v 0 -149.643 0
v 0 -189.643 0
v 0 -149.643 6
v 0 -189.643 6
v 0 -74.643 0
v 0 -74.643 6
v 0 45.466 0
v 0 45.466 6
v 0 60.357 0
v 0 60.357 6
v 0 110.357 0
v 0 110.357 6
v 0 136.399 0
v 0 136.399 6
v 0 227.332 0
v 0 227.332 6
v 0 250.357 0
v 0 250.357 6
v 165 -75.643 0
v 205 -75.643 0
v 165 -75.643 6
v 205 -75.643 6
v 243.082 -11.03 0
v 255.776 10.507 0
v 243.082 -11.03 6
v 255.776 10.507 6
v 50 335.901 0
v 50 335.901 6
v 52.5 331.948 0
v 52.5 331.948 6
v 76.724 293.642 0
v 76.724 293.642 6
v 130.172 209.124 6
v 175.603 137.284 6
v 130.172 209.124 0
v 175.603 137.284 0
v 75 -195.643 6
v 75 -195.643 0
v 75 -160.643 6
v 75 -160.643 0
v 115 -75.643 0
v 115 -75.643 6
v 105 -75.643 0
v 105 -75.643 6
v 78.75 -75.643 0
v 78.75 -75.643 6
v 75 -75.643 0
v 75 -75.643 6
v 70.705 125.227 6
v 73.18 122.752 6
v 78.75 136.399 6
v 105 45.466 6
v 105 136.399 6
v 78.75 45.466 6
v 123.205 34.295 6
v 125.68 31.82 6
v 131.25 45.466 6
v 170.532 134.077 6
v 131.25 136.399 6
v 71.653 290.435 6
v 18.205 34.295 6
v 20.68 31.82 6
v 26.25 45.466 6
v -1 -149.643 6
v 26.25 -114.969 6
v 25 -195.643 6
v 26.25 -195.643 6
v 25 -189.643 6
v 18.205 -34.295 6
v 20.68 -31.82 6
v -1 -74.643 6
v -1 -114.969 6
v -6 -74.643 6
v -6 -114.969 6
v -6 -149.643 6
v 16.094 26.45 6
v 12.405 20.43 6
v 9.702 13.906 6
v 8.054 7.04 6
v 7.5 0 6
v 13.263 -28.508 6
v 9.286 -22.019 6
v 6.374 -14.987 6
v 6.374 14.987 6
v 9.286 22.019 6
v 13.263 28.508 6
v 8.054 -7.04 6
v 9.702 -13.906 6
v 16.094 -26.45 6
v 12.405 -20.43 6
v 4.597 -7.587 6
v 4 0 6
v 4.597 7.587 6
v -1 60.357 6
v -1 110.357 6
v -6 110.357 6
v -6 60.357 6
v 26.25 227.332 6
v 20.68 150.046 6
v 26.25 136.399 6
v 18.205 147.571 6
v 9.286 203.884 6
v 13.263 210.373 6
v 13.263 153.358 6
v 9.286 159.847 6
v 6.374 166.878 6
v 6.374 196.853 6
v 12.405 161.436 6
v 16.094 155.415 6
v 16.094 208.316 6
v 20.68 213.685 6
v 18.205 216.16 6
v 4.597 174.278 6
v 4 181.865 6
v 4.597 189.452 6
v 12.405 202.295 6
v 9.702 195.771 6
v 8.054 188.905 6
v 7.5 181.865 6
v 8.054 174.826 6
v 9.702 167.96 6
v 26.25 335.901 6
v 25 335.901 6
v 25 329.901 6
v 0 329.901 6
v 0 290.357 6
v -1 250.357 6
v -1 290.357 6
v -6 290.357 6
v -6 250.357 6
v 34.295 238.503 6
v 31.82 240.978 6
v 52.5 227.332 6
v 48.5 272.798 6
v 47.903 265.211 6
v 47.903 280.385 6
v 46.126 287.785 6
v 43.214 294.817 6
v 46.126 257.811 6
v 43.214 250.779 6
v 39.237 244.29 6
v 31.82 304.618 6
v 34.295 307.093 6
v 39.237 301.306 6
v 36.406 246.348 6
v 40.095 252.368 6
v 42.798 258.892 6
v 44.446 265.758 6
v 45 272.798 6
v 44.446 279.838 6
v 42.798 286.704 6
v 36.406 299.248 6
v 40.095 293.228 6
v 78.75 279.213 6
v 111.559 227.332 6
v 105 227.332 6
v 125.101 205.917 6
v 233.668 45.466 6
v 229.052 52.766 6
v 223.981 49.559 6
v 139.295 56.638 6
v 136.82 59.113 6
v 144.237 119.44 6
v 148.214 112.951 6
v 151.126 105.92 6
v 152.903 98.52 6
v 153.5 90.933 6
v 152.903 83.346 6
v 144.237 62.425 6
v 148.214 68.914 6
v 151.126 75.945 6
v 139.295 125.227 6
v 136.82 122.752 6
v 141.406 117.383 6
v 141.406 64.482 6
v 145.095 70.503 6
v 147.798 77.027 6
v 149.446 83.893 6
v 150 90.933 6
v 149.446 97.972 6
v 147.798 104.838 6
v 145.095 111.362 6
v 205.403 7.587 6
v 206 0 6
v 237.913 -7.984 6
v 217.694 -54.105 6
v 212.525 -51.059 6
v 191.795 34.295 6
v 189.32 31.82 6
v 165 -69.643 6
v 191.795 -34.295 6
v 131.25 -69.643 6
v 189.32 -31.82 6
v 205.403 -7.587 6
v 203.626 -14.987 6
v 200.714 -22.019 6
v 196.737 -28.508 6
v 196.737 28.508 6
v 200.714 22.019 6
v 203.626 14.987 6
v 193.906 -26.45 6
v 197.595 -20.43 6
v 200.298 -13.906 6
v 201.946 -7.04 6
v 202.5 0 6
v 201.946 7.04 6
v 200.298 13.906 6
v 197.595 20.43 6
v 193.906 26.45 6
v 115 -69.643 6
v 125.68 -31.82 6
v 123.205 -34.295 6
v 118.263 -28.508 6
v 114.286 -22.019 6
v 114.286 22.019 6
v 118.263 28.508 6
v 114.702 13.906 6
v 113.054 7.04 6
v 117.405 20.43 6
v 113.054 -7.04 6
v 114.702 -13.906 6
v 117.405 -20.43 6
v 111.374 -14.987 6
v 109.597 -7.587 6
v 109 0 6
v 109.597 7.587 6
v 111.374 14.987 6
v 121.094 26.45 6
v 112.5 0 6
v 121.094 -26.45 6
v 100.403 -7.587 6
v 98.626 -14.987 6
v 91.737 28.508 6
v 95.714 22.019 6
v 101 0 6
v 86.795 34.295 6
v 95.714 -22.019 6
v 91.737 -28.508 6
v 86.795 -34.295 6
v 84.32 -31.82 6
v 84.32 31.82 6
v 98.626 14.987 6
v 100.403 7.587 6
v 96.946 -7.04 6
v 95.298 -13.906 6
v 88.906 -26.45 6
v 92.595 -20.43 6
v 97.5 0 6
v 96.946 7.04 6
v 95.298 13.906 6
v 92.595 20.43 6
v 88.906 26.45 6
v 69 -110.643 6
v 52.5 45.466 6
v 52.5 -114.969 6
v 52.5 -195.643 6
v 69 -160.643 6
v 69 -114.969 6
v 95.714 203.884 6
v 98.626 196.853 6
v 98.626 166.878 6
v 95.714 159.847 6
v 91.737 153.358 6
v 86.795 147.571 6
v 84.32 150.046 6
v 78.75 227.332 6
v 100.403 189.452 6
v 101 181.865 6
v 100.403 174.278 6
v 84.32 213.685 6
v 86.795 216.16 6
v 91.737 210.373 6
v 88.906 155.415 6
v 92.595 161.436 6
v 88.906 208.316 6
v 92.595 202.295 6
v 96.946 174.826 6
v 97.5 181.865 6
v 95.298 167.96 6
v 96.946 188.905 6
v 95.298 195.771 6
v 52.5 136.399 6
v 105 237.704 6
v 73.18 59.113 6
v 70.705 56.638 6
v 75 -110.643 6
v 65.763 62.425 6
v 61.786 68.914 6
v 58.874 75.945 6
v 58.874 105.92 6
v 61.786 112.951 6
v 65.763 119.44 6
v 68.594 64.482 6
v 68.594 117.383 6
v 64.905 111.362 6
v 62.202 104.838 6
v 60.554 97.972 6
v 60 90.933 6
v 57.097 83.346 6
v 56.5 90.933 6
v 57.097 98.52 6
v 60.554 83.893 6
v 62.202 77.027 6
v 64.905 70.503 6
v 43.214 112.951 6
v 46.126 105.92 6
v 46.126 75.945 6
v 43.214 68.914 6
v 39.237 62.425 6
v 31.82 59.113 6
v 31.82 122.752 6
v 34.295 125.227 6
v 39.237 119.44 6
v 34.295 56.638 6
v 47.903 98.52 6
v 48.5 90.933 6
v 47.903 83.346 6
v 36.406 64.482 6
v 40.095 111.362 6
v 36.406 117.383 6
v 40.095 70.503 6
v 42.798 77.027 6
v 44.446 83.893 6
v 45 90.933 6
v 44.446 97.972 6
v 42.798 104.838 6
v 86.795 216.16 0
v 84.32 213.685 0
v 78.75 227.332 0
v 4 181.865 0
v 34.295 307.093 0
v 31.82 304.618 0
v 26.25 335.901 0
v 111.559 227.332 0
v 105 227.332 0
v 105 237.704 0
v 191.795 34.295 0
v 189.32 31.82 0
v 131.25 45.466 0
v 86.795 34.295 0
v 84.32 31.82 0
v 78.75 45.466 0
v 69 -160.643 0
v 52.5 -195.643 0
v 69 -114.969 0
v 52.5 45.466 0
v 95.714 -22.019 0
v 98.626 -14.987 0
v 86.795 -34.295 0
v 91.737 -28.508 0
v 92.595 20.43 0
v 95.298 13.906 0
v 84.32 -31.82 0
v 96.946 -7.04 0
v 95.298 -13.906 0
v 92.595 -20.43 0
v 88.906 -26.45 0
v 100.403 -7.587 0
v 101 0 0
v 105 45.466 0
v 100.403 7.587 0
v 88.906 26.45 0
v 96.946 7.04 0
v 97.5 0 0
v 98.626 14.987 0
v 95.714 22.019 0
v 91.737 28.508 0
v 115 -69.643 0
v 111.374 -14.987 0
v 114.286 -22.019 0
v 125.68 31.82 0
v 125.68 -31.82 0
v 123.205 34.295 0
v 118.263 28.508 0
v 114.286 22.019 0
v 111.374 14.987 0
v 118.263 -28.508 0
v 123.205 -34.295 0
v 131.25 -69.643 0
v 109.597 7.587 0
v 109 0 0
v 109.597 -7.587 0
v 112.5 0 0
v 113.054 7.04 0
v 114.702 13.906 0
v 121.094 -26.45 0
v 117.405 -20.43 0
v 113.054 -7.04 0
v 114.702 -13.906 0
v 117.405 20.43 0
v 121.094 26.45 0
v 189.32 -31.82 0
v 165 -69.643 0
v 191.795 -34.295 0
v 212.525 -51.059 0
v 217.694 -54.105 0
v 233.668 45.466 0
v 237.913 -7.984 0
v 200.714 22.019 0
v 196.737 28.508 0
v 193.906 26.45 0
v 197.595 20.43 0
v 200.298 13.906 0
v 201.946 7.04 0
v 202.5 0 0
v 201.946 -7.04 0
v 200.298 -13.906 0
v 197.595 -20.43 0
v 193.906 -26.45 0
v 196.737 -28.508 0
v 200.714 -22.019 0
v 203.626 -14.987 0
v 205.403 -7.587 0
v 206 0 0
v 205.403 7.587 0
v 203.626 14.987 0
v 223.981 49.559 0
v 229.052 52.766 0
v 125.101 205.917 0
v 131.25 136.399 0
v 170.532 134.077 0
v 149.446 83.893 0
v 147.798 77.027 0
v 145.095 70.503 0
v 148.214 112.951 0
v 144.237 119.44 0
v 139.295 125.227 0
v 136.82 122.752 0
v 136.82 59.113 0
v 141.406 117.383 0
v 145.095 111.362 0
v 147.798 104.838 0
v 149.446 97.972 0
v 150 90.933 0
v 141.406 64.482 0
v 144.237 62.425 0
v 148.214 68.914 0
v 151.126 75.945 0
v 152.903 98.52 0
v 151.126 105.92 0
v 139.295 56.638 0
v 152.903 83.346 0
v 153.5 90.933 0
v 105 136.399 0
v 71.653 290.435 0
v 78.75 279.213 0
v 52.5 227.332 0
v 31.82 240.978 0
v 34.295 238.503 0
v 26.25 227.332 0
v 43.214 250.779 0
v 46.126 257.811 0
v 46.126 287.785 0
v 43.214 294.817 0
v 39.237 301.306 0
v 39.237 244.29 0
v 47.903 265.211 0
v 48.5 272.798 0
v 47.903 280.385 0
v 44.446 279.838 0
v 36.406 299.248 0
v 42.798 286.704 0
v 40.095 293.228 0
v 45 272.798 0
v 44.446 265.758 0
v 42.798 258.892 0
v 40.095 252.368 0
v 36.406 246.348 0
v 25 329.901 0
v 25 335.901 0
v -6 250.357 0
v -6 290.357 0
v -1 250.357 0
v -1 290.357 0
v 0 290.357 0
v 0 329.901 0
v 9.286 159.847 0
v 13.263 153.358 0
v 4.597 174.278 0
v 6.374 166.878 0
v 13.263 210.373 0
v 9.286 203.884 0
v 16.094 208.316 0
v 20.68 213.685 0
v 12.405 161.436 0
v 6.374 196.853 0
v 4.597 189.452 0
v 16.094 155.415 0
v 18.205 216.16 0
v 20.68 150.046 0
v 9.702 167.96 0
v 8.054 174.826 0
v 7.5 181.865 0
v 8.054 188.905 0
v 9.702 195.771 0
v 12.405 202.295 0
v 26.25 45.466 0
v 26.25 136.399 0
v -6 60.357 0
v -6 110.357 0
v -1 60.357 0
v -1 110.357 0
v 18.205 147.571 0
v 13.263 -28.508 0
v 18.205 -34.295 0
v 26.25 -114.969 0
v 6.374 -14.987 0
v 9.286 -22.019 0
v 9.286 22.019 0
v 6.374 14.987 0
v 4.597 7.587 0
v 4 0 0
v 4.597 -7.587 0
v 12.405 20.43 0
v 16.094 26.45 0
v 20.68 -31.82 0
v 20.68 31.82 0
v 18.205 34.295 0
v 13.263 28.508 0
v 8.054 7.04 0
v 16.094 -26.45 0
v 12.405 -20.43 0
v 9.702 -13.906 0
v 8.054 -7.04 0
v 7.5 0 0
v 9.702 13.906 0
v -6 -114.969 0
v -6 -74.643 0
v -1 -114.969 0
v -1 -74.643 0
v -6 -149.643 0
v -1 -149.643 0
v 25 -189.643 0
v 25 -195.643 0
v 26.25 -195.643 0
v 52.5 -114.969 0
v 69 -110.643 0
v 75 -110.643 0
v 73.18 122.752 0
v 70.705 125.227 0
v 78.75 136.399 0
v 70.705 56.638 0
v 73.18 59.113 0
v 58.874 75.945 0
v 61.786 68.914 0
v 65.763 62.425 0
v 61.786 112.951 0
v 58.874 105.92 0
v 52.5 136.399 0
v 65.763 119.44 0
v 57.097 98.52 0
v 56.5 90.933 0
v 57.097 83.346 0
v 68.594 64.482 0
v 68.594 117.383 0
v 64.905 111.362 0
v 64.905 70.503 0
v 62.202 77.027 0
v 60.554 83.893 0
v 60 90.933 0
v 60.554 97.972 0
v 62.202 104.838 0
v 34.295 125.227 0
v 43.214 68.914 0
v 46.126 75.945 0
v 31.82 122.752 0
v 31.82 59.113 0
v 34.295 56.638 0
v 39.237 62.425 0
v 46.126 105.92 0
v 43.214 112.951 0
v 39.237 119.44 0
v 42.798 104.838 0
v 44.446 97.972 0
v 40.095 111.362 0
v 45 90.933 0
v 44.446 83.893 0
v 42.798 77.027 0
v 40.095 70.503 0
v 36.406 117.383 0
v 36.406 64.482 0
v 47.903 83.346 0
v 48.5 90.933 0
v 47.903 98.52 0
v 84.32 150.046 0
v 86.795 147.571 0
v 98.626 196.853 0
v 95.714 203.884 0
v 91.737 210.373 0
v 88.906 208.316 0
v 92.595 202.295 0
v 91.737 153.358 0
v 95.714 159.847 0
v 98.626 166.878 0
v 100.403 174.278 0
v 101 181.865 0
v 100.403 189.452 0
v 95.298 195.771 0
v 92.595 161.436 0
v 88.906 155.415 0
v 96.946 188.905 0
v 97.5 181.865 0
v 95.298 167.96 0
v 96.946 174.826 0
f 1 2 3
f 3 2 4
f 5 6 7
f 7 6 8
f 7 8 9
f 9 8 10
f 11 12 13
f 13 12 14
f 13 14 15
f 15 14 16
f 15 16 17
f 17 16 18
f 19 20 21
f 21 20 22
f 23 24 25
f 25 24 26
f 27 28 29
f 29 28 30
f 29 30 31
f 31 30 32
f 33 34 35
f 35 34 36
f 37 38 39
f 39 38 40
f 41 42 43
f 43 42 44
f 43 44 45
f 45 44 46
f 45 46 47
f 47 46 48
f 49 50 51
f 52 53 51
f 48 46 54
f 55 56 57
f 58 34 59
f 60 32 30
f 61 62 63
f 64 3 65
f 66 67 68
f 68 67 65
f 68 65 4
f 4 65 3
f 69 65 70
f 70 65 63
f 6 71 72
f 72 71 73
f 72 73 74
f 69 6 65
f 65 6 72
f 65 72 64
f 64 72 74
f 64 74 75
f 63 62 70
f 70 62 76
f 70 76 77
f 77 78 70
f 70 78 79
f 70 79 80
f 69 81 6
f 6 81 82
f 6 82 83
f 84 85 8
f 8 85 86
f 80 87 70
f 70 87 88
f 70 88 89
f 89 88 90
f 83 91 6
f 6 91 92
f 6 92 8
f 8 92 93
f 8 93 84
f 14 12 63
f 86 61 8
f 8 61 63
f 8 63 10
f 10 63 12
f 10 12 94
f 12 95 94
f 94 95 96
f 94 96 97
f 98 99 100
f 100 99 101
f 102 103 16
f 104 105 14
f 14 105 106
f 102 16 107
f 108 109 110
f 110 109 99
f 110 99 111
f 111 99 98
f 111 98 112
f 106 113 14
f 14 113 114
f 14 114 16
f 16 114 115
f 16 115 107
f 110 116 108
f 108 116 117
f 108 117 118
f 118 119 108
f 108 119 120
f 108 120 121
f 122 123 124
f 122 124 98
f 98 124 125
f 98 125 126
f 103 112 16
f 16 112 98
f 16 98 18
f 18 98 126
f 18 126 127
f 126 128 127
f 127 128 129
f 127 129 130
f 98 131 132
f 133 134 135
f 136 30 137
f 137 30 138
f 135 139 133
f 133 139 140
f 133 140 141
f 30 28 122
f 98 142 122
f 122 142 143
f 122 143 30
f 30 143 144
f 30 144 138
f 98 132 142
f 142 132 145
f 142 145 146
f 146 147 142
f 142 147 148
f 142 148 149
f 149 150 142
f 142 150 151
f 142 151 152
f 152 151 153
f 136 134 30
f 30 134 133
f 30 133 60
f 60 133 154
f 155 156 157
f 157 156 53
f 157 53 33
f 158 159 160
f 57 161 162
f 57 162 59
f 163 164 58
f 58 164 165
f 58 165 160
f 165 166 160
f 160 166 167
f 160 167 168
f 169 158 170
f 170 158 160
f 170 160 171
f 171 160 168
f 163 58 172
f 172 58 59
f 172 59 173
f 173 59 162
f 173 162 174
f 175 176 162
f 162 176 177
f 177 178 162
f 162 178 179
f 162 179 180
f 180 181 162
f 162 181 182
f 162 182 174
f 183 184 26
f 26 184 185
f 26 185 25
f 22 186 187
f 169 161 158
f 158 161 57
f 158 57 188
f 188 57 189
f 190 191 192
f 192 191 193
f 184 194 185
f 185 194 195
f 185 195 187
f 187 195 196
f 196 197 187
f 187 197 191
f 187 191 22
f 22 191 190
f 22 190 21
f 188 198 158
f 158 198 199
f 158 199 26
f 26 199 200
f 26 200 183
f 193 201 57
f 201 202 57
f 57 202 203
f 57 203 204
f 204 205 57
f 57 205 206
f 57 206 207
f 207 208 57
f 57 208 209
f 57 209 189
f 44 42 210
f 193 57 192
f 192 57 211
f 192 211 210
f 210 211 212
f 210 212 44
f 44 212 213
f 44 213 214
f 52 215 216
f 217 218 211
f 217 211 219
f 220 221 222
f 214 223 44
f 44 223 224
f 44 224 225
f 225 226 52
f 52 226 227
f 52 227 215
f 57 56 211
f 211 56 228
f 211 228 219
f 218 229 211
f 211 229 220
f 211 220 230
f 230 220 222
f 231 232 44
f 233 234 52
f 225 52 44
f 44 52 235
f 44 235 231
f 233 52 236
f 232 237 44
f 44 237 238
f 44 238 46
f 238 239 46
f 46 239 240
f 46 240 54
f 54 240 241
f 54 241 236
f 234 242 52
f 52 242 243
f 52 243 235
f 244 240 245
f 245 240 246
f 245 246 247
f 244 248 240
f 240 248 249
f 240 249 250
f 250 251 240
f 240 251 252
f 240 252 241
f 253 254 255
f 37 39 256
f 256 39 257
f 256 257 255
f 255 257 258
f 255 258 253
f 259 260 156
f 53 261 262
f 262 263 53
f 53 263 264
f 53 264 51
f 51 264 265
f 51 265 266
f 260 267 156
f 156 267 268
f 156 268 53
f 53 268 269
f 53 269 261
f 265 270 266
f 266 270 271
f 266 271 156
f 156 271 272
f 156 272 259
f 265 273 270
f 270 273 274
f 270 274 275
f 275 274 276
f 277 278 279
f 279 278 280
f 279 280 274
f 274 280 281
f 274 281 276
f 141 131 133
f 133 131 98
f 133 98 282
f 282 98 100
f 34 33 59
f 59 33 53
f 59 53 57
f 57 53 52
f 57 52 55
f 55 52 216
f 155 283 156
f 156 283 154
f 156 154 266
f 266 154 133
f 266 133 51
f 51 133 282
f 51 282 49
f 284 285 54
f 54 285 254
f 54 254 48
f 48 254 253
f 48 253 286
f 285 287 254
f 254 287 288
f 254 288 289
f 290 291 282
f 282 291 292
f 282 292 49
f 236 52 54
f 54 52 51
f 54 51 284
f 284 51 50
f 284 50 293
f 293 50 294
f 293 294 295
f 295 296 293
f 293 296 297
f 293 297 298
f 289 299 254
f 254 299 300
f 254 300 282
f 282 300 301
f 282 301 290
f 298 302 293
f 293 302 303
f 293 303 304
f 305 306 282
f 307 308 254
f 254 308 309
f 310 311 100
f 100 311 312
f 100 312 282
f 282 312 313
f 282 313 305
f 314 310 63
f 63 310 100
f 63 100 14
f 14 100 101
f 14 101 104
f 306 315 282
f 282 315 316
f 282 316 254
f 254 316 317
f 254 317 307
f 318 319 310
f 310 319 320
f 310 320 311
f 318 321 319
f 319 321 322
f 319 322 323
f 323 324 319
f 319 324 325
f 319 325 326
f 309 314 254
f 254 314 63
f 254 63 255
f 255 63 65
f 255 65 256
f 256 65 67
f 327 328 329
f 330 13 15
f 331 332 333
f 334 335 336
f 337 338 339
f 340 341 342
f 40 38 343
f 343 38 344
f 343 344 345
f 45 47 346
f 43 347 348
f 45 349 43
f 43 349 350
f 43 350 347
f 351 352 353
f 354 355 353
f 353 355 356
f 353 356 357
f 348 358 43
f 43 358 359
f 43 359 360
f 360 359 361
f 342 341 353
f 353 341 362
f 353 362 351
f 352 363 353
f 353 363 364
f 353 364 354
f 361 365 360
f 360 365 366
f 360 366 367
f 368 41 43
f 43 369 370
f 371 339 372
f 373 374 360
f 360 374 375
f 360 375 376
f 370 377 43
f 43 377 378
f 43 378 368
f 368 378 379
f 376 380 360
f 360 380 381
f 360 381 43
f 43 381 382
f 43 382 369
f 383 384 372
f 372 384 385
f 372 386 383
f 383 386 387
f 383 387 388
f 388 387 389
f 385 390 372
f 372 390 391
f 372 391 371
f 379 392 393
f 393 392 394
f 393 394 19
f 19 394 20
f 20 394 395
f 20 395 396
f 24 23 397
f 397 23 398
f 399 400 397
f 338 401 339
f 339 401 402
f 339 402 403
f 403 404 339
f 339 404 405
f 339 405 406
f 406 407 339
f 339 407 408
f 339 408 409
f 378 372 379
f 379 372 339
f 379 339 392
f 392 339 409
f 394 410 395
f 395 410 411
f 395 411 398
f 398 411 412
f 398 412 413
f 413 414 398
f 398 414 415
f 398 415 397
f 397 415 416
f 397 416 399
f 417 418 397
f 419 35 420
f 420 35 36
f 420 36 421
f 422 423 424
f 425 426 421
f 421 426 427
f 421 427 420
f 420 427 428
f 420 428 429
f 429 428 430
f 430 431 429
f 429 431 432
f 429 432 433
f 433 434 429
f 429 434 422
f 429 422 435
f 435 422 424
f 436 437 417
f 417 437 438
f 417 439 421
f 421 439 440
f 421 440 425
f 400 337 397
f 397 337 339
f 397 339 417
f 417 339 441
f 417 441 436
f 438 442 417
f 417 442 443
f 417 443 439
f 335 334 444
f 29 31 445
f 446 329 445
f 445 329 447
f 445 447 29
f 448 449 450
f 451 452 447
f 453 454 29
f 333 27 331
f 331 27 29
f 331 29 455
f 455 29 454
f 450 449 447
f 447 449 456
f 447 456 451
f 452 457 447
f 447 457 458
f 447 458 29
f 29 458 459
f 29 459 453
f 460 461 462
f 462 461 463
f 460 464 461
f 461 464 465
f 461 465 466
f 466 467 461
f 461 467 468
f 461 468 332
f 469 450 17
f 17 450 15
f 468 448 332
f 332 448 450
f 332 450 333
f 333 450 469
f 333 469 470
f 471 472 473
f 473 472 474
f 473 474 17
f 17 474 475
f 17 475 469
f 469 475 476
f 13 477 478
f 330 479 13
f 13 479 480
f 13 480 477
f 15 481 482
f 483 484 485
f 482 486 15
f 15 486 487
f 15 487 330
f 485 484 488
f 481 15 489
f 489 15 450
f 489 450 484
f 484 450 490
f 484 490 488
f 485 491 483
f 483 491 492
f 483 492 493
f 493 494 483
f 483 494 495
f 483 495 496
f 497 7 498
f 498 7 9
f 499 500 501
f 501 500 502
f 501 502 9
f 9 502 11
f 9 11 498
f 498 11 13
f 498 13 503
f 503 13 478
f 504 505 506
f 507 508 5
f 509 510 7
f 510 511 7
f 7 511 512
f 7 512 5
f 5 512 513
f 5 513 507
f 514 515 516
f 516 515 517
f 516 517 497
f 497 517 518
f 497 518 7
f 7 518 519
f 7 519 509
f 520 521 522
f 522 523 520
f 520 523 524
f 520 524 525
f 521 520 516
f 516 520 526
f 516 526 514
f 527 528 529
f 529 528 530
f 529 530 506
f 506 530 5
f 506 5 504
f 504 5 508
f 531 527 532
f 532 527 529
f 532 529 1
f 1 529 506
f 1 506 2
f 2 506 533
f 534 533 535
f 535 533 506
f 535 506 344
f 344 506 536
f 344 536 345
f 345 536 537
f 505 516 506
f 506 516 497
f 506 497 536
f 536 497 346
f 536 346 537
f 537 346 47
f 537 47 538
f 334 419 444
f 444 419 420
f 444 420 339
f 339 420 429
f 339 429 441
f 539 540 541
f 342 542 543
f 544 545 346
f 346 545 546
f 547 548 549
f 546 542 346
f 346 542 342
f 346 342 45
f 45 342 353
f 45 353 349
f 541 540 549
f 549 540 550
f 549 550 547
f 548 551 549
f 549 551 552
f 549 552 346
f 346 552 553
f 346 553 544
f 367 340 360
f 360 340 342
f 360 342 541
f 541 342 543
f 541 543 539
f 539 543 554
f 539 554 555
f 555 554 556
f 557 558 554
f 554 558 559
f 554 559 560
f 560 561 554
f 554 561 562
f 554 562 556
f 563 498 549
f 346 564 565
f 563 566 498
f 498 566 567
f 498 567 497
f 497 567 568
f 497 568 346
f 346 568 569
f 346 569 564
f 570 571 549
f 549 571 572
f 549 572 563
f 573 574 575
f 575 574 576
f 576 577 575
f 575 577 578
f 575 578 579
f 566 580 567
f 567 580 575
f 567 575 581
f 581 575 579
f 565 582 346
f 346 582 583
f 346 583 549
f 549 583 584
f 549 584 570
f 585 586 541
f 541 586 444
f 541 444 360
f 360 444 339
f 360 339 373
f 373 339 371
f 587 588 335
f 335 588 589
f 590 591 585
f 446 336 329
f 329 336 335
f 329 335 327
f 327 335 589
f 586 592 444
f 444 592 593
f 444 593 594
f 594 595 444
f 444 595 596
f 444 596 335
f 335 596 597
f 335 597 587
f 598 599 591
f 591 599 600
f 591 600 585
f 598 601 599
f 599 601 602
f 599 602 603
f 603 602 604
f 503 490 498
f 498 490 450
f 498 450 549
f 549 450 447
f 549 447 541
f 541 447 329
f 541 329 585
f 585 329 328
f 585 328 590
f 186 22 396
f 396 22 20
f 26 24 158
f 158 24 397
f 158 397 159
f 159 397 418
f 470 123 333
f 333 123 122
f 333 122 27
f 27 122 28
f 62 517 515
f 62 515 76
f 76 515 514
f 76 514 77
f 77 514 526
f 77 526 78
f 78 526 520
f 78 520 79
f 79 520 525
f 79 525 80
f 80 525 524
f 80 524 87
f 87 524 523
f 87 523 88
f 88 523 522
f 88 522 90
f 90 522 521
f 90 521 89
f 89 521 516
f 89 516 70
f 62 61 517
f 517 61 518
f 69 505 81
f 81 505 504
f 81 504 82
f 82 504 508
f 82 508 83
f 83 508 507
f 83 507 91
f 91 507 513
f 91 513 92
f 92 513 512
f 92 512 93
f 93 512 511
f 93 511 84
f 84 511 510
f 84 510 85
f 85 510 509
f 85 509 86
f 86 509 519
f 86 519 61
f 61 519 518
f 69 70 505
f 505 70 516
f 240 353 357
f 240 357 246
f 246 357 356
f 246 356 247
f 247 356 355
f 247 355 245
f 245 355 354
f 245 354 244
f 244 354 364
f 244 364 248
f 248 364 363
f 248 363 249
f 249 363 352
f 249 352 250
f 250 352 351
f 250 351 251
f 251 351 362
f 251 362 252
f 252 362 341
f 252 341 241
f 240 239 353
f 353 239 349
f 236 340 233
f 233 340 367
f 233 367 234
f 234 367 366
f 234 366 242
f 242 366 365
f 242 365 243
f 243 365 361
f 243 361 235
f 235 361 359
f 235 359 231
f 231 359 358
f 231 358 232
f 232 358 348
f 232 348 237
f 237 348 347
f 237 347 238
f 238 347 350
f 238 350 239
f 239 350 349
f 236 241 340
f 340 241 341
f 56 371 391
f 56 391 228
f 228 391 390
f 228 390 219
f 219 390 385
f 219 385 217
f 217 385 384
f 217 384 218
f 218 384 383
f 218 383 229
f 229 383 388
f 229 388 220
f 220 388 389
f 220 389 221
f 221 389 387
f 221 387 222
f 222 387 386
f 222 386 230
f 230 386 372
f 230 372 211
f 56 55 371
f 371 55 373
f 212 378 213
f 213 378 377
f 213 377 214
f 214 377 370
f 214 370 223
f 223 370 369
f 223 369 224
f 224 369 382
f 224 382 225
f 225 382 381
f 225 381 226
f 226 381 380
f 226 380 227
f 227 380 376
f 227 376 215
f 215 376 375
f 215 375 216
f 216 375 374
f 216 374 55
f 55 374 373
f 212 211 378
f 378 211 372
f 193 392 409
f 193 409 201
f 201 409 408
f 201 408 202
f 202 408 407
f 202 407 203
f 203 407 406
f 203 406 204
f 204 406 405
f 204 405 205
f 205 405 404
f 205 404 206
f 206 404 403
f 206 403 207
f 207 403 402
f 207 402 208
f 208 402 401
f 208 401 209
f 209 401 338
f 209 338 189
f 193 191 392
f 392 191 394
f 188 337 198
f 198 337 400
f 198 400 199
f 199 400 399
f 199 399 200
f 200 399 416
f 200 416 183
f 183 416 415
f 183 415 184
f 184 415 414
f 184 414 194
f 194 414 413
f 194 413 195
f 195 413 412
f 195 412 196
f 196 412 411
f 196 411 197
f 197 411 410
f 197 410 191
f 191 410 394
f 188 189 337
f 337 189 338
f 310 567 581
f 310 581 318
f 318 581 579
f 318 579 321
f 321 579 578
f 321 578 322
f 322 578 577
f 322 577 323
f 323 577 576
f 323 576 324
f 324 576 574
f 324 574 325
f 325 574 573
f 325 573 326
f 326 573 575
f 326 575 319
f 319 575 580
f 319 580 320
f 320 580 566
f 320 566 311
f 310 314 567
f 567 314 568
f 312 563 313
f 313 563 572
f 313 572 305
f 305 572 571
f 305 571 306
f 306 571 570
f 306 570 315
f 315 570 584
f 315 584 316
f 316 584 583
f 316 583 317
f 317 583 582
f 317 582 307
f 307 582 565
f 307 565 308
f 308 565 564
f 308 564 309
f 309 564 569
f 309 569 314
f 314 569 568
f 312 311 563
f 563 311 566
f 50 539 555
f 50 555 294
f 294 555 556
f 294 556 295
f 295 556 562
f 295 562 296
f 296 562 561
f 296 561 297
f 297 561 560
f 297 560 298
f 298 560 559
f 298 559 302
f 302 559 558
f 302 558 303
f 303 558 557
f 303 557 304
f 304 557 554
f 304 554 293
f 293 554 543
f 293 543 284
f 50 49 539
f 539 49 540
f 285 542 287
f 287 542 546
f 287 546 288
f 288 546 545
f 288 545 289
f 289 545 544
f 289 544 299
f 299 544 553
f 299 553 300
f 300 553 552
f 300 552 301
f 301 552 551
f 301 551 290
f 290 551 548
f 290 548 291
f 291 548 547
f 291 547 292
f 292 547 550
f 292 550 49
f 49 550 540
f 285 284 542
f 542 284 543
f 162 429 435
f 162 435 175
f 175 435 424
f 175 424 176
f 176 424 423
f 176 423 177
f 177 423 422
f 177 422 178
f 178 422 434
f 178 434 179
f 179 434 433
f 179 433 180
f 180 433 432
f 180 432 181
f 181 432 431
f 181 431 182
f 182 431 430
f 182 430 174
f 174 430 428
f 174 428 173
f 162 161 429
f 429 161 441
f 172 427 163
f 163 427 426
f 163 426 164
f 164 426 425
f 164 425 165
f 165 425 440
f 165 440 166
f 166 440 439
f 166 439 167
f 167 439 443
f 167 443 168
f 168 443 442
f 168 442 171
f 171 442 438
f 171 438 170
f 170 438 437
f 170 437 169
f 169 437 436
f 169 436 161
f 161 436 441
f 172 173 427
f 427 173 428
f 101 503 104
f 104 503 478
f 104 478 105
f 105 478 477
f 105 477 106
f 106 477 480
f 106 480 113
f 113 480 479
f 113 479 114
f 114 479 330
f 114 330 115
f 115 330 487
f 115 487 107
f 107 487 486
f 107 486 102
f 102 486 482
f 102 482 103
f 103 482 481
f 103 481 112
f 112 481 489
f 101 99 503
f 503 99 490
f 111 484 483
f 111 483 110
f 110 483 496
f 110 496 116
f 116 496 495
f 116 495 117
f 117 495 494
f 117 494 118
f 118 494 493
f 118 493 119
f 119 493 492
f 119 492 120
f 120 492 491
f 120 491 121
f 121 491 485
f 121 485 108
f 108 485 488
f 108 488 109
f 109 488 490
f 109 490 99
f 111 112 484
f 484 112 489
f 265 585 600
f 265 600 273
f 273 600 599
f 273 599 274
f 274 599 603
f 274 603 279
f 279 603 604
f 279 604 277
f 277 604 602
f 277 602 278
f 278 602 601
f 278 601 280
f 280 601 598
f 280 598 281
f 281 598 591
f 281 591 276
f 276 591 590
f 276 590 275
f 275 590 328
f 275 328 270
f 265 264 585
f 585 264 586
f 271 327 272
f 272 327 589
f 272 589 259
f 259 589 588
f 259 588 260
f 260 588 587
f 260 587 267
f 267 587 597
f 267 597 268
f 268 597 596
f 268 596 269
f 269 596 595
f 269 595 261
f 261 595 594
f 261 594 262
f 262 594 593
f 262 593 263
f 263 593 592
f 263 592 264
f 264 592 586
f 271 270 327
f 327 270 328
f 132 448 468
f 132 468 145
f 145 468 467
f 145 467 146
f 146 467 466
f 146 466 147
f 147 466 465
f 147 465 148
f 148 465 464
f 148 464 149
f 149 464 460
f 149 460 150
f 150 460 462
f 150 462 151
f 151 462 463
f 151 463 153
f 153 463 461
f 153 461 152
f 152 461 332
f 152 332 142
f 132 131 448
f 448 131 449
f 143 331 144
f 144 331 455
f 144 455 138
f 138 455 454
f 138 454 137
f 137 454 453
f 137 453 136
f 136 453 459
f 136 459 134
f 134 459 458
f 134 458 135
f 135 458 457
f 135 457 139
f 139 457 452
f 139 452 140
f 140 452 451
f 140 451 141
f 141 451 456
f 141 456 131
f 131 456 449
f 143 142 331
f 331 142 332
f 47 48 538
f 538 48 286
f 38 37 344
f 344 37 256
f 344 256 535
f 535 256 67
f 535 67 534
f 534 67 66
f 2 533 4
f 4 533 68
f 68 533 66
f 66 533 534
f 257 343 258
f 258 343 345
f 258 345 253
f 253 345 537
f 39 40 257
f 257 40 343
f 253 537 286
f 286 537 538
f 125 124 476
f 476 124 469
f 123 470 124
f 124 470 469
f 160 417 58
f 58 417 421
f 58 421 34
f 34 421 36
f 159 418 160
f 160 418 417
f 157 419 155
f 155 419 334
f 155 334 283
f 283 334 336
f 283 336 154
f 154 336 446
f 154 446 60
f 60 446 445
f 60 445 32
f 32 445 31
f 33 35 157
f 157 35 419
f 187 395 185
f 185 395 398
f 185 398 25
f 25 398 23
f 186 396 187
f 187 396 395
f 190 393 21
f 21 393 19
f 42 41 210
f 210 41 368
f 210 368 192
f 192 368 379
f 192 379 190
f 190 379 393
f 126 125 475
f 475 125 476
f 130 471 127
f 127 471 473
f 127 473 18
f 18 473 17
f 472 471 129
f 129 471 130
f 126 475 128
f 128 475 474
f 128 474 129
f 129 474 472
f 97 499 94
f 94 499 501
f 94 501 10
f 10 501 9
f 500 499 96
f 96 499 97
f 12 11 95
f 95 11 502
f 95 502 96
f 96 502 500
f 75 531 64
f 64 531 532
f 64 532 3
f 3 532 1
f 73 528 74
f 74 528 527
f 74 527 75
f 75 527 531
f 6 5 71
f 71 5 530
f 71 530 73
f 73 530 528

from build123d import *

# Parameters (mm, degrees)
BOSS_EXTRU_1_DEPTH      = 6
ESQUISSE2_W             = 150
ESQUISSE2_H             = 120
BOSS_EXTRU_2_DEPTH      = 6
ESQUISSE3_W             = 6
ESQUISSE3_H             = 50
ESQUISSE3_W_2           = 50
ESQUISSE3_H_2           = 6
ENL_V_MAT_EXTRU_1_DEPTH = 10
ESQUISSE4_W             = 50
ESQUISSE4_H             = 6
ENL_V_MAT_EXTRU_2_DEPTH = 10
ESQUISSE7_W             = 293.706966018
ESQUISSE7_H             = 576.29660199
ENL_V_MAT_EXTRU_4_DEPTH = 10
ESQUISSE8_W             = 6
ESQUISSE8_H             = 40
ESQUISSE8_H_2           = 50
ESQUISSE8_H_3           = 75
BOSS_EXTRU_4_DEPTH      = 6


with BuildPart() as part:
    # Esquisse1 → Boss.-Extru.1 (new body)
    with BuildSketch(Plane.XY):
        Polygon((-50, 335.901139535), (50, 335.901139535), (255.775862069, 10.507079064), (205, -75.642859016), (-205, -75.642859016), (-255.775862069, 10.507079064), align=None)
        with BuildLine():
            Line((-189.319805153, 31.819805153), (-191.794678888, 34.294678888))
            ThreePointArc((-191.794678888, 34.294678888), (-206, 0), (-191.794678888, -34.294678888))
            Line((-191.794678888, -34.294678888), (-189.319805153, -31.819805153))
            ThreePointArc((-189.319805153, -31.819805153), (-202.5, 0), (-189.319805153, 31.819805153))
        make_face(mode=Mode.SUBTRACT)
        with BuildLine():
            Line((-125.680194847, 31.819805153), (-123.205321112, 34.294678888))
            ThreePointArc((-123.205321112, 34.294678888), (-109, 0), (-123.205321112, -34.294678888))
            Line((-123.205321112, -34.294678888), (-125.680194847, -31.819805153))
            ThreePointArc((-125.680194847, -31.819805153), (-112.5, 0), (-125.680194847, 31.819805153))
        make_face(mode=Mode.SUBTRACT)
        with BuildLine():
            Line((-84.319805153, -31.819805153), (-86.794678888, -34.294678888))
            ThreePointArc((-86.794678888, -34.294678888), (-101, 0), (-86.794678888, 34.294678888))
            Line((-86.794678888, 34.294678888), (-84.319805153, 31.819805153))
            ThreePointArc((-84.319805153, 31.819805153), (-97.5, 0), (-84.319805153, -31.819805153))
        make_face(mode=Mode.SUBTRACT)
        with BuildLine():
            Line((-20.680194847, 31.819805153), (-18.205321112, 34.294678888))
            ThreePointArc((-18.205321112, 34.294678888), (-4, 0), (-18.205321112, -34.294678888))
            Line((-18.205321112, -34.294678888), (-20.680194847, -31.819805153))
            ThreePointArc((-20.680194847, -31.819805153), (-7.5, 0), (-20.680194847, 31.819805153))
        make_face(mode=Mode.SUBTRACT)
        with BuildLine():
            Line((20.680194847, -31.819805153), (18.205321112, -34.294678888))
            ThreePointArc((18.205321112, -34.294678888), (4, 0), (18.205321112, 34.294678888))
            Line((18.205321112, 34.294678888), (20.680194847, 31.819805153))
            ThreePointArc((20.680194847, 31.819805153), (7.5, 0), (20.680194847, -31.819805153))
        make_face(mode=Mode.SUBTRACT)
        with BuildLine():
            Line((84.319805153, 31.819805153), (86.794678888, 34.294678888))
            ThreePointArc((86.794678888, 34.294678888), (101, 0), (86.794678888, -34.294678888))
            Line((86.794678888, -34.294678888), (84.319805153, -31.819805153))
            ThreePointArc((84.319805153, -31.819805153), (97.5, 0), (84.319805153, 31.819805153))
        make_face(mode=Mode.SUBTRACT)
        with BuildLine():
            Line((125.680194847, -31.819805153), (123.205321112, -34.294678888))
            ThreePointArc((123.205321112, -34.294678888), (109, 0), (123.205321112, 34.294678888))
            Line((123.205321112, 34.294678888), (125.680194847, 31.819805153))
            ThreePointArc((125.680194847, 31.819805153), (112.5, 0), (125.680194847, -31.819805153))
        make_face(mode=Mode.SUBTRACT)
        with BuildLine():
            Line((189.319805153, 31.819805153), (191.794678888, 34.294678888))
            ThreePointArc((191.794678888, 34.294678888), (206, 0), (191.794678888, -34.294678888))
            Line((191.794678888, -34.294678888), (189.319805153, -31.819805153))
            ThreePointArc((189.319805153, -31.819805153), (202.5, 0), (189.319805153, 31.819805153))
        make_face(mode=Mode.SUBTRACT)
        with BuildLine():
            Line((-139.294678888, 56.63798851), (-136.819805153, 59.112862244))
            ThreePointArc((-136.819805153, 59.112862244), (-150, 90.932667397), (-136.819805153, 122.752472551))
            Line((-136.819805153, 122.752472551), (-139.294678888, 125.227346285))
            ThreePointArc((-139.294678888, 125.227346285), (-153.5, 90.932667397), (-139.294678888, 56.63798851))
        make_face(mode=Mode.SUBTRACT)
        with BuildLine():
            Line((-70.705321112, 56.63798851), (-73.180194847, 59.112862244))
            ThreePointArc((-73.180194847, 59.112862244), (-60, 90.932667397), (-73.180194847, 122.752472551))
            Line((-73.180194847, 122.752472551), (-70.705321112, 125.227346285))
            ThreePointArc((-70.705321112, 125.227346285), (-56.5, 90.932667397), (-70.705321112, 56.63798851))
        make_face(mode=Mode.SUBTRACT)
        with BuildLine():
            Line((-31.819805153, 122.752472551), (-34.294678888, 125.227346285))
            ThreePointArc((-34.294678888, 125.227346285), (-48.5, 90.932667397), (-34.294678888, 56.63798851))
            Line((-34.294678888, 56.63798851), (-31.819805153, 59.112862244))
            ThreePointArc((-31.819805153, 59.112862244), (-45, 90.932667397), (-31.819805153, 122.752472551))
        make_face(mode=Mode.SUBTRACT)
        with BuildLine():
            Line((34.294678888, 56.63798851), (31.819805153, 59.112862244))
            ThreePointArc((31.819805153, 59.112862244), (45, 90.932667397), (31.819805153, 122.752472551))
            Line((31.819805153, 122.752472551), (34.294678888, 125.227346285))
            ThreePointArc((34.294678888, 125.227346285), (48.5, 90.932667397), (34.294678888, 56.63798851))
        make_face(mode=Mode.SUBTRACT)
        with BuildLine():
            Line((73.180194847, 122.752472551), (70.705321112, 125.227346285))
            ThreePointArc((70.705321112, 125.227346285), (56.5, 90.932667397), (70.705321112, 56.63798851))
            Line((70.705321112, 56.63798851), (73.180194847, 59.112862244))
            ThreePointArc((73.180194847, 59.112862244), (60, 90.932667397), (73.180194847, 122.752472551))
        make_face(mode=Mode.SUBTRACT)
        with BuildLine():
            Line((139.294678888, 56.63798851), (136.819805153, 59.112862244))
            ThreePointArc((136.819805153, 59.112862244), (150, 90.932667397), (136.819805153, 122.752472551))
            Line((136.819805153, 122.752472551), (139.294678888, 125.227346285))
            ThreePointArc((139.294678888, 125.227346285), (153.5, 90.932667397), (139.294678888, 56.63798851))
        make_face(mode=Mode.SUBTRACT)
        with BuildLine():
            Line((-84.319805153, 213.685139948), (-86.794678888, 216.160013682))
            ThreePointArc((-86.794678888, 216.160013682), (-101, 181.865334795), (-86.794678888, 147.570655907))
            Line((-86.794678888, 147.570655907), (-84.319805153, 150.045529641))
            ThreePointArc((-84.319805153, 150.045529641), (-97.5, 181.865334795), (-84.319805153, 213.685139948))
        make_face(mode=Mode.SUBTRACT)
        with BuildLine():
            Line((-20.680194847, 213.685139948), (-18.205321112, 216.160013682))
            ThreePointArc((-18.205321112, 216.160013682), (-4, 181.865334795), (-18.205321112, 147.570655907))
            Line((-18.205321112, 147.570655907), (-20.680194847, 150.045529641))
            ThreePointArc((-20.680194847, 150.045529641), (-7.5, 181.865334795), (-20.680194847, 213.685139948))
        make_face(mode=Mode.SUBTRACT)
        with BuildLine():
            Line((20.680194847, 150.045529641), (18.205321112, 147.570655907))
            ThreePointArc((18.205321112, 147.570655907), (4, 181.865334795), (18.205321112, 216.160013682))
            Line((18.205321112, 216.160013682), (20.680194847, 213.685139948))
            ThreePointArc((20.680194847, 213.685139948), (7.5, 181.865334795), (20.680194847, 150.045529641))
        make_face(mode=Mode.SUBTRACT)
        with BuildLine():
            Line((84.319805153, 150.045529641), (86.794678888, 147.570655907))
            ThreePointArc((86.794678888, 147.570655907), (101, 181.865334795), (86.794678888, 216.160013682))
            Line((86.794678888, 216.160013682), (84.319805153, 213.685139948))
            ThreePointArc((84.319805153, 213.685139948), (97.5, 181.865334795), (84.319805153, 150.045529641))
        make_face(mode=Mode.SUBTRACT)
        with BuildLine():
            Line((-31.819805153, 304.617807345), (-34.294678888, 307.09268108))
            ThreePointArc((-34.294678888, 307.09268108), (-48.5, 272.798002192), (-34.294678888, 238.503323305))
            Line((-34.294678888, 238.503323305), (-31.819805153, 240.978197039))
            ThreePointArc((-31.819805153, 240.978197039), (-45, 272.798002192), (-31.819805153, 304.617807345))
        make_face(mode=Mode.SUBTRACT)
        with BuildLine():
            Line((31.819805153, 304.617807345), (34.294678888, 307.09268108))
            ThreePointArc((34.294678888, 307.09268108), (48.5, 272.798002192), (34.294678888, 238.503323305))
            Line((34.294678888, 238.503323305), (31.819805153, 240.978197039))
            ThreePointArc((31.819805153, 240.978197039), (45, 272.798002192), (31.819805153, 304.617807345))
        make_face(mode=Mode.SUBTRACT)
    extrude(amount=BOSS_EXTRU_1_DEPTH)

    # Esquisse2 → Boss.-Extru.2 (add)
    with BuildSketch(Plane.XY.offset(6)):
        with Locations((0, -135.642859016)):
            Rectangle(ESQUISSE2_W, ESQUISSE2_H)
    extrude(amount=-BOSS_EXTRU_2_DEPTH)

    # Esquisse3 → Enlèv. mat.-Extru.1 (cut)
    with BuildSketch(Plane.XY.offset(6)):
        with Locations((-72, -135.642859016)):
            Rectangle(ESQUISSE3_W, ESQUISSE3_H)
        with Locations((0, -192.642859016)):
            Rectangle(ESQUISSE3_W_2, ESQUISSE3_H_2)
        with Locations((72, -135.642859016)):
            Rectangle(ESQUISSE3_W, ESQUISSE3_H)
    extrude(amount=-ENL_V_MAT_EXTRU_1_DEPTH, mode=Mode.SUBTRACT)

    # Esquisse4 → Enlèv. mat.-Extru.2 (cut)
    with BuildSketch(Plane.XY.offset(6)):
        with Locations((-140, -72.642859016)):
            Rectangle(ESQUISSE4_W, ESQUISSE4_H)
        Polygon((-217.693965517, -54.105374496), (-212.524969232, -51.058822772), (-237.912900267, -7.983853732), (-243.081896552, -11.030405456), align=None)
        Polygon((-229.051724138, 52.766047956), (-223.980647871, 49.559151404), (-170.532372009, 134.077089189), (-175.603448276, 137.283985741), align=None)
        Polygon((-71.653061664, 290.43527409), (-76.724137931, 293.642170642), (-130.172413793, 209.124232858), (-125.101337526, 205.917336306), align=None)
        with Locations((0, 332.901139535)):
            Rectangle(ESQUISSE4_W, ESQUISSE4_H)
        with Locations((140, -72.642859016)):
            Rectangle(ESQUISSE4_W, ESQUISSE4_H)
        Polygon((237.912900267, -7.983853732), (243.081896552, -11.030405456), (217.693965517, -54.105374496), (212.524969232, -51.058822772), align=None)
        Polygon((170.532372009, 134.077089189), (175.603448276, 137.283985741), (229.051724138, 52.766047956), (223.980647871, 49.559151404), align=None)
        Polygon((125.101337526, 205.917336306), (130.172413793, 209.124232858), (76.724137931, 293.642170642), (71.653061664, 290.43527409), align=None)
    extrude(amount=-ENL_V_MAT_EXTRU_2_DEPTH, mode=Mode.SUBTRACT)

    # Esquisse7 → Enlèv. mat.-Extru.4 (cut)
    with BuildSketch(Plane.XY.offset(6)):
        with Locations((-146.853483009, 80.947217028)):
            Rectangle(ESQUISSE7_W, ESQUISSE7_H)
    extrude(amount=-ENL_V_MAT_EXTRU_4_DEPTH, mode=Mode.SUBTRACT)

    # Esquisse8 → Boss.-Extru.4 (add)
    with BuildSketch(Plane.XY.offset(6)):
        with Locations((-3, 270.357140984)):
            Rectangle(ESQUISSE8_W, ESQUISSE8_H)
        with Locations((-3, 85.357140984)):
            Rectangle(ESQUISSE8_W, ESQUISSE8_H_2)
        with Locations((-3, -112.142859016)):
            Rectangle(ESQUISSE8_W, ESQUISSE8_H_3)
    extrude(amount=-BOSS_EXTRU_4_DEPTH)


solid = part.part
